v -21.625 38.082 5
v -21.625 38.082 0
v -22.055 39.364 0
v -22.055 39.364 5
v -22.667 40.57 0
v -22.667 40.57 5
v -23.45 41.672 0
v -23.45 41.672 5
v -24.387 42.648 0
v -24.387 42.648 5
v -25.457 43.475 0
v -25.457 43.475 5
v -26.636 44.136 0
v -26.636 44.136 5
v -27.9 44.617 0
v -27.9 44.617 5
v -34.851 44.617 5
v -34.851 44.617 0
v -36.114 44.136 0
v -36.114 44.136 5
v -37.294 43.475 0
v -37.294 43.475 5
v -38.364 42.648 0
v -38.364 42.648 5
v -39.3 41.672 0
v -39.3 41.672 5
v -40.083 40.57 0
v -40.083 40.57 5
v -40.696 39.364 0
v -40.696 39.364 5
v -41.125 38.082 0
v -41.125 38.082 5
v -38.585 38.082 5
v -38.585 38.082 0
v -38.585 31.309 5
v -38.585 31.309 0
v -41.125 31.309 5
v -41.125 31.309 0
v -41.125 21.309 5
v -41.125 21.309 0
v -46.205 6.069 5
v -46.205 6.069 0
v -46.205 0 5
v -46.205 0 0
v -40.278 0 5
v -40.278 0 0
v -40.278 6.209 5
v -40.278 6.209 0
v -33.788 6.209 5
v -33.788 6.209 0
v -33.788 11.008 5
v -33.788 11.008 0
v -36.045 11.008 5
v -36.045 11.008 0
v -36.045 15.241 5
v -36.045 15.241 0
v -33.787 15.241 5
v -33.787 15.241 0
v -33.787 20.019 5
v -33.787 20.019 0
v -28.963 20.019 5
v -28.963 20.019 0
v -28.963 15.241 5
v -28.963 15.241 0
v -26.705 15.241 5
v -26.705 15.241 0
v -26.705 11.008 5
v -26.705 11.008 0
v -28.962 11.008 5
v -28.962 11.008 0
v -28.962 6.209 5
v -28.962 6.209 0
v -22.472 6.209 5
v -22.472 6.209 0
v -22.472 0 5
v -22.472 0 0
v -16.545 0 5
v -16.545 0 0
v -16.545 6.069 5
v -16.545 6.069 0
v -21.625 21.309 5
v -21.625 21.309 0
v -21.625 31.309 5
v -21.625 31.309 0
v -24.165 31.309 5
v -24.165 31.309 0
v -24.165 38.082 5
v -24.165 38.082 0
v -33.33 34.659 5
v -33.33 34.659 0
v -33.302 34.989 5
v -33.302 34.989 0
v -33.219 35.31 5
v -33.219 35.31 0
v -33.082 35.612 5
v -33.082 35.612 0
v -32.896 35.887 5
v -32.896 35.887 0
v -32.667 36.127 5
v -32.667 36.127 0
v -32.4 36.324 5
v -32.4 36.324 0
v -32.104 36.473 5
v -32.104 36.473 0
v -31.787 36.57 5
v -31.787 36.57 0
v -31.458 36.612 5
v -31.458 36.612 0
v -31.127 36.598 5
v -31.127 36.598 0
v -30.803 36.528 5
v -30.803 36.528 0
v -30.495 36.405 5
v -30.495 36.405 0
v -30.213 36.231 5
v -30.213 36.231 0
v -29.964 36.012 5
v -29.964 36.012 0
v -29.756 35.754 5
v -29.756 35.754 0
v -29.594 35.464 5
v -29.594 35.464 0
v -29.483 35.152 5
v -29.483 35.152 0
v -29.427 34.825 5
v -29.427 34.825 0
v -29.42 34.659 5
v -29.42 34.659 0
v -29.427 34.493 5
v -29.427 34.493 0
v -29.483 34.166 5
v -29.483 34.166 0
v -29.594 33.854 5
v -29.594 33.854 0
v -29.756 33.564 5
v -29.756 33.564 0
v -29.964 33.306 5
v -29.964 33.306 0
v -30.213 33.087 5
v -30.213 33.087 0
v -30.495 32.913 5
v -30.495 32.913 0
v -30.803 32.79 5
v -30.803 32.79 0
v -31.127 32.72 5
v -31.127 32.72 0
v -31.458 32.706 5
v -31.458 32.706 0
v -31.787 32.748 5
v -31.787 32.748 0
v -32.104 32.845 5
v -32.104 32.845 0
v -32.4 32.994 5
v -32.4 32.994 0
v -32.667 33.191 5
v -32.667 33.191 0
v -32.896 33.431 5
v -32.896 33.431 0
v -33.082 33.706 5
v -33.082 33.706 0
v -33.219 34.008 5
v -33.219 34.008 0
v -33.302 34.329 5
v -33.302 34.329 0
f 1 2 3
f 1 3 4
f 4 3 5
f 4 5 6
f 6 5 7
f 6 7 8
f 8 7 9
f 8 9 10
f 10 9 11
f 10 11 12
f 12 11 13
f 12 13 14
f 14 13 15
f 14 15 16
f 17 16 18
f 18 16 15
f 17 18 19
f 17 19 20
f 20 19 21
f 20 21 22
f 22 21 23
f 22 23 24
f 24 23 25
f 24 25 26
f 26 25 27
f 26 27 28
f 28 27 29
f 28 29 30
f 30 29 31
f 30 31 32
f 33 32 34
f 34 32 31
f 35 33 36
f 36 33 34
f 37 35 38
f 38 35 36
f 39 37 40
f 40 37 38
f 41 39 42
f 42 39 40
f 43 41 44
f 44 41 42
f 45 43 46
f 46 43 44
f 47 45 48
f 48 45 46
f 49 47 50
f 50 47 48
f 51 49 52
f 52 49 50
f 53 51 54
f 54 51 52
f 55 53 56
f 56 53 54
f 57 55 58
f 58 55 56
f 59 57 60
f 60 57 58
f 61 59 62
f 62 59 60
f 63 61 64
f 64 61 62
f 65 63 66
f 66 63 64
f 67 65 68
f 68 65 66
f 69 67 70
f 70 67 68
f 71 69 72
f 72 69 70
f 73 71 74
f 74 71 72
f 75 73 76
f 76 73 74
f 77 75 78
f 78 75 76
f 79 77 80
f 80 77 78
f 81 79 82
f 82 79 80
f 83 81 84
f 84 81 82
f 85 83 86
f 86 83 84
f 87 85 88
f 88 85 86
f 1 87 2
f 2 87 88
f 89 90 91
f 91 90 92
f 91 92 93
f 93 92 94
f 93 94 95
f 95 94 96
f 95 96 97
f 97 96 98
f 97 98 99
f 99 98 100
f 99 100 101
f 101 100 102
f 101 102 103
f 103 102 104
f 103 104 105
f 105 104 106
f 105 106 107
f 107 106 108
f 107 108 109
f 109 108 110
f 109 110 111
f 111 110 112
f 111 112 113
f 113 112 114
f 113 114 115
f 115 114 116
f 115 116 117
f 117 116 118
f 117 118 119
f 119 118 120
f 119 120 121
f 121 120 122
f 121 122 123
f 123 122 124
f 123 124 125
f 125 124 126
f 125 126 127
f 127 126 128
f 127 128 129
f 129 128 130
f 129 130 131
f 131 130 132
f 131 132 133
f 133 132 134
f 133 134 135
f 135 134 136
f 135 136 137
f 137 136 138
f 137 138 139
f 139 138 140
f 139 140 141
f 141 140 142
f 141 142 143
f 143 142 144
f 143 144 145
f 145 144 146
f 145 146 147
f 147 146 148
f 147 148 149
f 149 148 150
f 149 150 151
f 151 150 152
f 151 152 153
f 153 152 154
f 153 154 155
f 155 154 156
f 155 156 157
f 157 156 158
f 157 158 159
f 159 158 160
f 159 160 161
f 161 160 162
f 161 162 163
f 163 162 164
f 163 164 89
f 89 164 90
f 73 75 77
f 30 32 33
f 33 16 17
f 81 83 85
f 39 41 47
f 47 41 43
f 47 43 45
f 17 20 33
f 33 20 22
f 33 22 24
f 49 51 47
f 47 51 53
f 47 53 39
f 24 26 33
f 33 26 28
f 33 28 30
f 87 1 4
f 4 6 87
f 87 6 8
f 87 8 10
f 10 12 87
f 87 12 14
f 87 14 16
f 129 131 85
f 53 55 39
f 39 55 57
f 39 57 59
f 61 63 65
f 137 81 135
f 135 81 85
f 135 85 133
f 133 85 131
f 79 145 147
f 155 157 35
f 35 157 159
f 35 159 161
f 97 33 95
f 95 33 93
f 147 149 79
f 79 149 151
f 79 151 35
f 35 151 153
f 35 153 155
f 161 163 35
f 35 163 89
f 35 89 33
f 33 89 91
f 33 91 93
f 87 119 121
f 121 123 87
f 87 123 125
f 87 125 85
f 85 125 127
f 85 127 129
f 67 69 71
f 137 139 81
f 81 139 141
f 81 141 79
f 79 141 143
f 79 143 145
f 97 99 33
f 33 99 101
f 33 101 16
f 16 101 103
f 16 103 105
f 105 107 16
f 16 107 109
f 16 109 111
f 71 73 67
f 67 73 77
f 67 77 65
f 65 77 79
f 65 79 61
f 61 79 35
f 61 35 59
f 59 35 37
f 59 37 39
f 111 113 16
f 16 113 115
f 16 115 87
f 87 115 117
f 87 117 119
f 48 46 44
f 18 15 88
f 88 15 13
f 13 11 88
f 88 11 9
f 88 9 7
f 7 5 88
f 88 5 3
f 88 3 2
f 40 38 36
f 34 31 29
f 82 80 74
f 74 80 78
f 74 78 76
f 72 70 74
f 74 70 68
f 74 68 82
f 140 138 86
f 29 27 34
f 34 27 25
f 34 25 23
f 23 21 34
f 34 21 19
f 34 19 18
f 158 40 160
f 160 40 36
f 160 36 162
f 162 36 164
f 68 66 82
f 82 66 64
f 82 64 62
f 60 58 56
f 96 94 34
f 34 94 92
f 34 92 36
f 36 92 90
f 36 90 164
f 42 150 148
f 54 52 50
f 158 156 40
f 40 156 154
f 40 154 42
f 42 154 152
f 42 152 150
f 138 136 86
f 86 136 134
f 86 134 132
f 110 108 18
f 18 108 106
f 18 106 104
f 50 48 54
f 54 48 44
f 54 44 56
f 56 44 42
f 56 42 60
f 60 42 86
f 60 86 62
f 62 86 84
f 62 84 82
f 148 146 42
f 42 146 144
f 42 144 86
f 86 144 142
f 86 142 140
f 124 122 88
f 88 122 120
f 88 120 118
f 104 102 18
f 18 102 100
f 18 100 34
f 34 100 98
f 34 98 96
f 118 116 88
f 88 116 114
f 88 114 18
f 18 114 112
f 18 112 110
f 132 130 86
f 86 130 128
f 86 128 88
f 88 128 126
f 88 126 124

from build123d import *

# Parameters (mm, degrees)
SKETCH1_R           = 1.955
BOSS_EXTRUDE1_DEPTH = 5


with BuildPart() as part:
    # Sketch1 → Boss-Extrude1 (new body)
    with BuildSketch(Plane.XY):
        with BuildLine():
            Line((-46.205346306, 6.069), (-46.205346306, 0))
            Line((-46.205346306, 0), (-40.278346306, 0))
            Line((-40.278346306, 0), (-40.278346306, 6.209))
            Line((-40.278346306, 6.209), (-33.788346306, 6.209))
            Line((-33.788346306, 6.209), (-33.788346306, 11.008))
            Line((-33.788346306, 11.008), (-36.045346306, 11.008))
            Line((-36.045346306, 11.008), (-36.045346306, 15.241))
            Line((-36.045346306, 15.241), (-33.787346306, 15.241))
            Line((-33.787346306, 15.241), (-33.787346306, 20.018965401))
            Line((-33.787346306, 20.018965401), (-31.375346306, 20.018965401))
            Line((-31.375346306, 20.018965401), (-28.963346306, 20.018965401))
            Line((-28.963346306, 20.018965401), (-28.963346306, 15.241))
            Line((-28.963346306, 15.241), (-26.705346306, 15.241))
            Line((-26.705346306, 15.241), (-26.705346306, 11.008))
            Line((-26.705346306, 11.008), (-28.962346306, 11.008))
            Line((-28.962346306, 11.008), (-28.962346306, 6.209))
            Line((-28.962346306, 6.209), (-22.472346306, 6.209))
            Line((-22.472346306, 6.209), (-22.472346306, 0))
            Line((-22.472346306, 0), (-16.545346306, 0))
            Line((-16.545346306, 0), (-16.545346306, 6.069))
            Line((-16.545346306, 6.069), (-21.625346306, 21.309))
            Line((-21.625346306, 21.309), (-21.625346306, 31.309))
            Line((-21.625346306, 31.309), (-24.165346306, 31.309))
            Line((-24.165346306, 31.309), (-24.165346306, 38.082))
            Line((-24.165346306, 38.082), (-21.625346306, 38.082))
            ThreePointArc((-21.625346306, 38.082), (-23.900792185, 42.177151256), (-27.90009545, 44.61712895))
            Line((-27.90009545, 44.61712895), (-31.366233796, 44.61712895))
            Line((-31.366233796, 44.61712895), (-31.384458817, 44.61712895))
            Line((-31.384458817, 44.61712895), (-34.850597163, 44.61712895))
            ThreePointArc((-34.850597163, 44.61712895), (-38.849900428, 42.177151256), (-41.125346306, 38.082))
            Line((-41.125346306, 38.082), (-38.585346306, 38.082))
            Line((-38.585346306, 38.082), (-38.585346306, 31.309))
            Line((-38.585346306, 31.309), (-41.125346306, 31.309))
            Line((-41.125346306, 31.309), (-41.125346306, 21.309))
            Line((-41.125346306, 21.309), (-46.205346306, 6.069))
        make_face()
        with Locations((-31.375346306, 34.658965401)):
            Circle(SKETCH1_R, mode=Mode.SUBTRACT)
    extrude(amount=BOSS_EXTRUDE1_DEPTH)


solid = part.part
